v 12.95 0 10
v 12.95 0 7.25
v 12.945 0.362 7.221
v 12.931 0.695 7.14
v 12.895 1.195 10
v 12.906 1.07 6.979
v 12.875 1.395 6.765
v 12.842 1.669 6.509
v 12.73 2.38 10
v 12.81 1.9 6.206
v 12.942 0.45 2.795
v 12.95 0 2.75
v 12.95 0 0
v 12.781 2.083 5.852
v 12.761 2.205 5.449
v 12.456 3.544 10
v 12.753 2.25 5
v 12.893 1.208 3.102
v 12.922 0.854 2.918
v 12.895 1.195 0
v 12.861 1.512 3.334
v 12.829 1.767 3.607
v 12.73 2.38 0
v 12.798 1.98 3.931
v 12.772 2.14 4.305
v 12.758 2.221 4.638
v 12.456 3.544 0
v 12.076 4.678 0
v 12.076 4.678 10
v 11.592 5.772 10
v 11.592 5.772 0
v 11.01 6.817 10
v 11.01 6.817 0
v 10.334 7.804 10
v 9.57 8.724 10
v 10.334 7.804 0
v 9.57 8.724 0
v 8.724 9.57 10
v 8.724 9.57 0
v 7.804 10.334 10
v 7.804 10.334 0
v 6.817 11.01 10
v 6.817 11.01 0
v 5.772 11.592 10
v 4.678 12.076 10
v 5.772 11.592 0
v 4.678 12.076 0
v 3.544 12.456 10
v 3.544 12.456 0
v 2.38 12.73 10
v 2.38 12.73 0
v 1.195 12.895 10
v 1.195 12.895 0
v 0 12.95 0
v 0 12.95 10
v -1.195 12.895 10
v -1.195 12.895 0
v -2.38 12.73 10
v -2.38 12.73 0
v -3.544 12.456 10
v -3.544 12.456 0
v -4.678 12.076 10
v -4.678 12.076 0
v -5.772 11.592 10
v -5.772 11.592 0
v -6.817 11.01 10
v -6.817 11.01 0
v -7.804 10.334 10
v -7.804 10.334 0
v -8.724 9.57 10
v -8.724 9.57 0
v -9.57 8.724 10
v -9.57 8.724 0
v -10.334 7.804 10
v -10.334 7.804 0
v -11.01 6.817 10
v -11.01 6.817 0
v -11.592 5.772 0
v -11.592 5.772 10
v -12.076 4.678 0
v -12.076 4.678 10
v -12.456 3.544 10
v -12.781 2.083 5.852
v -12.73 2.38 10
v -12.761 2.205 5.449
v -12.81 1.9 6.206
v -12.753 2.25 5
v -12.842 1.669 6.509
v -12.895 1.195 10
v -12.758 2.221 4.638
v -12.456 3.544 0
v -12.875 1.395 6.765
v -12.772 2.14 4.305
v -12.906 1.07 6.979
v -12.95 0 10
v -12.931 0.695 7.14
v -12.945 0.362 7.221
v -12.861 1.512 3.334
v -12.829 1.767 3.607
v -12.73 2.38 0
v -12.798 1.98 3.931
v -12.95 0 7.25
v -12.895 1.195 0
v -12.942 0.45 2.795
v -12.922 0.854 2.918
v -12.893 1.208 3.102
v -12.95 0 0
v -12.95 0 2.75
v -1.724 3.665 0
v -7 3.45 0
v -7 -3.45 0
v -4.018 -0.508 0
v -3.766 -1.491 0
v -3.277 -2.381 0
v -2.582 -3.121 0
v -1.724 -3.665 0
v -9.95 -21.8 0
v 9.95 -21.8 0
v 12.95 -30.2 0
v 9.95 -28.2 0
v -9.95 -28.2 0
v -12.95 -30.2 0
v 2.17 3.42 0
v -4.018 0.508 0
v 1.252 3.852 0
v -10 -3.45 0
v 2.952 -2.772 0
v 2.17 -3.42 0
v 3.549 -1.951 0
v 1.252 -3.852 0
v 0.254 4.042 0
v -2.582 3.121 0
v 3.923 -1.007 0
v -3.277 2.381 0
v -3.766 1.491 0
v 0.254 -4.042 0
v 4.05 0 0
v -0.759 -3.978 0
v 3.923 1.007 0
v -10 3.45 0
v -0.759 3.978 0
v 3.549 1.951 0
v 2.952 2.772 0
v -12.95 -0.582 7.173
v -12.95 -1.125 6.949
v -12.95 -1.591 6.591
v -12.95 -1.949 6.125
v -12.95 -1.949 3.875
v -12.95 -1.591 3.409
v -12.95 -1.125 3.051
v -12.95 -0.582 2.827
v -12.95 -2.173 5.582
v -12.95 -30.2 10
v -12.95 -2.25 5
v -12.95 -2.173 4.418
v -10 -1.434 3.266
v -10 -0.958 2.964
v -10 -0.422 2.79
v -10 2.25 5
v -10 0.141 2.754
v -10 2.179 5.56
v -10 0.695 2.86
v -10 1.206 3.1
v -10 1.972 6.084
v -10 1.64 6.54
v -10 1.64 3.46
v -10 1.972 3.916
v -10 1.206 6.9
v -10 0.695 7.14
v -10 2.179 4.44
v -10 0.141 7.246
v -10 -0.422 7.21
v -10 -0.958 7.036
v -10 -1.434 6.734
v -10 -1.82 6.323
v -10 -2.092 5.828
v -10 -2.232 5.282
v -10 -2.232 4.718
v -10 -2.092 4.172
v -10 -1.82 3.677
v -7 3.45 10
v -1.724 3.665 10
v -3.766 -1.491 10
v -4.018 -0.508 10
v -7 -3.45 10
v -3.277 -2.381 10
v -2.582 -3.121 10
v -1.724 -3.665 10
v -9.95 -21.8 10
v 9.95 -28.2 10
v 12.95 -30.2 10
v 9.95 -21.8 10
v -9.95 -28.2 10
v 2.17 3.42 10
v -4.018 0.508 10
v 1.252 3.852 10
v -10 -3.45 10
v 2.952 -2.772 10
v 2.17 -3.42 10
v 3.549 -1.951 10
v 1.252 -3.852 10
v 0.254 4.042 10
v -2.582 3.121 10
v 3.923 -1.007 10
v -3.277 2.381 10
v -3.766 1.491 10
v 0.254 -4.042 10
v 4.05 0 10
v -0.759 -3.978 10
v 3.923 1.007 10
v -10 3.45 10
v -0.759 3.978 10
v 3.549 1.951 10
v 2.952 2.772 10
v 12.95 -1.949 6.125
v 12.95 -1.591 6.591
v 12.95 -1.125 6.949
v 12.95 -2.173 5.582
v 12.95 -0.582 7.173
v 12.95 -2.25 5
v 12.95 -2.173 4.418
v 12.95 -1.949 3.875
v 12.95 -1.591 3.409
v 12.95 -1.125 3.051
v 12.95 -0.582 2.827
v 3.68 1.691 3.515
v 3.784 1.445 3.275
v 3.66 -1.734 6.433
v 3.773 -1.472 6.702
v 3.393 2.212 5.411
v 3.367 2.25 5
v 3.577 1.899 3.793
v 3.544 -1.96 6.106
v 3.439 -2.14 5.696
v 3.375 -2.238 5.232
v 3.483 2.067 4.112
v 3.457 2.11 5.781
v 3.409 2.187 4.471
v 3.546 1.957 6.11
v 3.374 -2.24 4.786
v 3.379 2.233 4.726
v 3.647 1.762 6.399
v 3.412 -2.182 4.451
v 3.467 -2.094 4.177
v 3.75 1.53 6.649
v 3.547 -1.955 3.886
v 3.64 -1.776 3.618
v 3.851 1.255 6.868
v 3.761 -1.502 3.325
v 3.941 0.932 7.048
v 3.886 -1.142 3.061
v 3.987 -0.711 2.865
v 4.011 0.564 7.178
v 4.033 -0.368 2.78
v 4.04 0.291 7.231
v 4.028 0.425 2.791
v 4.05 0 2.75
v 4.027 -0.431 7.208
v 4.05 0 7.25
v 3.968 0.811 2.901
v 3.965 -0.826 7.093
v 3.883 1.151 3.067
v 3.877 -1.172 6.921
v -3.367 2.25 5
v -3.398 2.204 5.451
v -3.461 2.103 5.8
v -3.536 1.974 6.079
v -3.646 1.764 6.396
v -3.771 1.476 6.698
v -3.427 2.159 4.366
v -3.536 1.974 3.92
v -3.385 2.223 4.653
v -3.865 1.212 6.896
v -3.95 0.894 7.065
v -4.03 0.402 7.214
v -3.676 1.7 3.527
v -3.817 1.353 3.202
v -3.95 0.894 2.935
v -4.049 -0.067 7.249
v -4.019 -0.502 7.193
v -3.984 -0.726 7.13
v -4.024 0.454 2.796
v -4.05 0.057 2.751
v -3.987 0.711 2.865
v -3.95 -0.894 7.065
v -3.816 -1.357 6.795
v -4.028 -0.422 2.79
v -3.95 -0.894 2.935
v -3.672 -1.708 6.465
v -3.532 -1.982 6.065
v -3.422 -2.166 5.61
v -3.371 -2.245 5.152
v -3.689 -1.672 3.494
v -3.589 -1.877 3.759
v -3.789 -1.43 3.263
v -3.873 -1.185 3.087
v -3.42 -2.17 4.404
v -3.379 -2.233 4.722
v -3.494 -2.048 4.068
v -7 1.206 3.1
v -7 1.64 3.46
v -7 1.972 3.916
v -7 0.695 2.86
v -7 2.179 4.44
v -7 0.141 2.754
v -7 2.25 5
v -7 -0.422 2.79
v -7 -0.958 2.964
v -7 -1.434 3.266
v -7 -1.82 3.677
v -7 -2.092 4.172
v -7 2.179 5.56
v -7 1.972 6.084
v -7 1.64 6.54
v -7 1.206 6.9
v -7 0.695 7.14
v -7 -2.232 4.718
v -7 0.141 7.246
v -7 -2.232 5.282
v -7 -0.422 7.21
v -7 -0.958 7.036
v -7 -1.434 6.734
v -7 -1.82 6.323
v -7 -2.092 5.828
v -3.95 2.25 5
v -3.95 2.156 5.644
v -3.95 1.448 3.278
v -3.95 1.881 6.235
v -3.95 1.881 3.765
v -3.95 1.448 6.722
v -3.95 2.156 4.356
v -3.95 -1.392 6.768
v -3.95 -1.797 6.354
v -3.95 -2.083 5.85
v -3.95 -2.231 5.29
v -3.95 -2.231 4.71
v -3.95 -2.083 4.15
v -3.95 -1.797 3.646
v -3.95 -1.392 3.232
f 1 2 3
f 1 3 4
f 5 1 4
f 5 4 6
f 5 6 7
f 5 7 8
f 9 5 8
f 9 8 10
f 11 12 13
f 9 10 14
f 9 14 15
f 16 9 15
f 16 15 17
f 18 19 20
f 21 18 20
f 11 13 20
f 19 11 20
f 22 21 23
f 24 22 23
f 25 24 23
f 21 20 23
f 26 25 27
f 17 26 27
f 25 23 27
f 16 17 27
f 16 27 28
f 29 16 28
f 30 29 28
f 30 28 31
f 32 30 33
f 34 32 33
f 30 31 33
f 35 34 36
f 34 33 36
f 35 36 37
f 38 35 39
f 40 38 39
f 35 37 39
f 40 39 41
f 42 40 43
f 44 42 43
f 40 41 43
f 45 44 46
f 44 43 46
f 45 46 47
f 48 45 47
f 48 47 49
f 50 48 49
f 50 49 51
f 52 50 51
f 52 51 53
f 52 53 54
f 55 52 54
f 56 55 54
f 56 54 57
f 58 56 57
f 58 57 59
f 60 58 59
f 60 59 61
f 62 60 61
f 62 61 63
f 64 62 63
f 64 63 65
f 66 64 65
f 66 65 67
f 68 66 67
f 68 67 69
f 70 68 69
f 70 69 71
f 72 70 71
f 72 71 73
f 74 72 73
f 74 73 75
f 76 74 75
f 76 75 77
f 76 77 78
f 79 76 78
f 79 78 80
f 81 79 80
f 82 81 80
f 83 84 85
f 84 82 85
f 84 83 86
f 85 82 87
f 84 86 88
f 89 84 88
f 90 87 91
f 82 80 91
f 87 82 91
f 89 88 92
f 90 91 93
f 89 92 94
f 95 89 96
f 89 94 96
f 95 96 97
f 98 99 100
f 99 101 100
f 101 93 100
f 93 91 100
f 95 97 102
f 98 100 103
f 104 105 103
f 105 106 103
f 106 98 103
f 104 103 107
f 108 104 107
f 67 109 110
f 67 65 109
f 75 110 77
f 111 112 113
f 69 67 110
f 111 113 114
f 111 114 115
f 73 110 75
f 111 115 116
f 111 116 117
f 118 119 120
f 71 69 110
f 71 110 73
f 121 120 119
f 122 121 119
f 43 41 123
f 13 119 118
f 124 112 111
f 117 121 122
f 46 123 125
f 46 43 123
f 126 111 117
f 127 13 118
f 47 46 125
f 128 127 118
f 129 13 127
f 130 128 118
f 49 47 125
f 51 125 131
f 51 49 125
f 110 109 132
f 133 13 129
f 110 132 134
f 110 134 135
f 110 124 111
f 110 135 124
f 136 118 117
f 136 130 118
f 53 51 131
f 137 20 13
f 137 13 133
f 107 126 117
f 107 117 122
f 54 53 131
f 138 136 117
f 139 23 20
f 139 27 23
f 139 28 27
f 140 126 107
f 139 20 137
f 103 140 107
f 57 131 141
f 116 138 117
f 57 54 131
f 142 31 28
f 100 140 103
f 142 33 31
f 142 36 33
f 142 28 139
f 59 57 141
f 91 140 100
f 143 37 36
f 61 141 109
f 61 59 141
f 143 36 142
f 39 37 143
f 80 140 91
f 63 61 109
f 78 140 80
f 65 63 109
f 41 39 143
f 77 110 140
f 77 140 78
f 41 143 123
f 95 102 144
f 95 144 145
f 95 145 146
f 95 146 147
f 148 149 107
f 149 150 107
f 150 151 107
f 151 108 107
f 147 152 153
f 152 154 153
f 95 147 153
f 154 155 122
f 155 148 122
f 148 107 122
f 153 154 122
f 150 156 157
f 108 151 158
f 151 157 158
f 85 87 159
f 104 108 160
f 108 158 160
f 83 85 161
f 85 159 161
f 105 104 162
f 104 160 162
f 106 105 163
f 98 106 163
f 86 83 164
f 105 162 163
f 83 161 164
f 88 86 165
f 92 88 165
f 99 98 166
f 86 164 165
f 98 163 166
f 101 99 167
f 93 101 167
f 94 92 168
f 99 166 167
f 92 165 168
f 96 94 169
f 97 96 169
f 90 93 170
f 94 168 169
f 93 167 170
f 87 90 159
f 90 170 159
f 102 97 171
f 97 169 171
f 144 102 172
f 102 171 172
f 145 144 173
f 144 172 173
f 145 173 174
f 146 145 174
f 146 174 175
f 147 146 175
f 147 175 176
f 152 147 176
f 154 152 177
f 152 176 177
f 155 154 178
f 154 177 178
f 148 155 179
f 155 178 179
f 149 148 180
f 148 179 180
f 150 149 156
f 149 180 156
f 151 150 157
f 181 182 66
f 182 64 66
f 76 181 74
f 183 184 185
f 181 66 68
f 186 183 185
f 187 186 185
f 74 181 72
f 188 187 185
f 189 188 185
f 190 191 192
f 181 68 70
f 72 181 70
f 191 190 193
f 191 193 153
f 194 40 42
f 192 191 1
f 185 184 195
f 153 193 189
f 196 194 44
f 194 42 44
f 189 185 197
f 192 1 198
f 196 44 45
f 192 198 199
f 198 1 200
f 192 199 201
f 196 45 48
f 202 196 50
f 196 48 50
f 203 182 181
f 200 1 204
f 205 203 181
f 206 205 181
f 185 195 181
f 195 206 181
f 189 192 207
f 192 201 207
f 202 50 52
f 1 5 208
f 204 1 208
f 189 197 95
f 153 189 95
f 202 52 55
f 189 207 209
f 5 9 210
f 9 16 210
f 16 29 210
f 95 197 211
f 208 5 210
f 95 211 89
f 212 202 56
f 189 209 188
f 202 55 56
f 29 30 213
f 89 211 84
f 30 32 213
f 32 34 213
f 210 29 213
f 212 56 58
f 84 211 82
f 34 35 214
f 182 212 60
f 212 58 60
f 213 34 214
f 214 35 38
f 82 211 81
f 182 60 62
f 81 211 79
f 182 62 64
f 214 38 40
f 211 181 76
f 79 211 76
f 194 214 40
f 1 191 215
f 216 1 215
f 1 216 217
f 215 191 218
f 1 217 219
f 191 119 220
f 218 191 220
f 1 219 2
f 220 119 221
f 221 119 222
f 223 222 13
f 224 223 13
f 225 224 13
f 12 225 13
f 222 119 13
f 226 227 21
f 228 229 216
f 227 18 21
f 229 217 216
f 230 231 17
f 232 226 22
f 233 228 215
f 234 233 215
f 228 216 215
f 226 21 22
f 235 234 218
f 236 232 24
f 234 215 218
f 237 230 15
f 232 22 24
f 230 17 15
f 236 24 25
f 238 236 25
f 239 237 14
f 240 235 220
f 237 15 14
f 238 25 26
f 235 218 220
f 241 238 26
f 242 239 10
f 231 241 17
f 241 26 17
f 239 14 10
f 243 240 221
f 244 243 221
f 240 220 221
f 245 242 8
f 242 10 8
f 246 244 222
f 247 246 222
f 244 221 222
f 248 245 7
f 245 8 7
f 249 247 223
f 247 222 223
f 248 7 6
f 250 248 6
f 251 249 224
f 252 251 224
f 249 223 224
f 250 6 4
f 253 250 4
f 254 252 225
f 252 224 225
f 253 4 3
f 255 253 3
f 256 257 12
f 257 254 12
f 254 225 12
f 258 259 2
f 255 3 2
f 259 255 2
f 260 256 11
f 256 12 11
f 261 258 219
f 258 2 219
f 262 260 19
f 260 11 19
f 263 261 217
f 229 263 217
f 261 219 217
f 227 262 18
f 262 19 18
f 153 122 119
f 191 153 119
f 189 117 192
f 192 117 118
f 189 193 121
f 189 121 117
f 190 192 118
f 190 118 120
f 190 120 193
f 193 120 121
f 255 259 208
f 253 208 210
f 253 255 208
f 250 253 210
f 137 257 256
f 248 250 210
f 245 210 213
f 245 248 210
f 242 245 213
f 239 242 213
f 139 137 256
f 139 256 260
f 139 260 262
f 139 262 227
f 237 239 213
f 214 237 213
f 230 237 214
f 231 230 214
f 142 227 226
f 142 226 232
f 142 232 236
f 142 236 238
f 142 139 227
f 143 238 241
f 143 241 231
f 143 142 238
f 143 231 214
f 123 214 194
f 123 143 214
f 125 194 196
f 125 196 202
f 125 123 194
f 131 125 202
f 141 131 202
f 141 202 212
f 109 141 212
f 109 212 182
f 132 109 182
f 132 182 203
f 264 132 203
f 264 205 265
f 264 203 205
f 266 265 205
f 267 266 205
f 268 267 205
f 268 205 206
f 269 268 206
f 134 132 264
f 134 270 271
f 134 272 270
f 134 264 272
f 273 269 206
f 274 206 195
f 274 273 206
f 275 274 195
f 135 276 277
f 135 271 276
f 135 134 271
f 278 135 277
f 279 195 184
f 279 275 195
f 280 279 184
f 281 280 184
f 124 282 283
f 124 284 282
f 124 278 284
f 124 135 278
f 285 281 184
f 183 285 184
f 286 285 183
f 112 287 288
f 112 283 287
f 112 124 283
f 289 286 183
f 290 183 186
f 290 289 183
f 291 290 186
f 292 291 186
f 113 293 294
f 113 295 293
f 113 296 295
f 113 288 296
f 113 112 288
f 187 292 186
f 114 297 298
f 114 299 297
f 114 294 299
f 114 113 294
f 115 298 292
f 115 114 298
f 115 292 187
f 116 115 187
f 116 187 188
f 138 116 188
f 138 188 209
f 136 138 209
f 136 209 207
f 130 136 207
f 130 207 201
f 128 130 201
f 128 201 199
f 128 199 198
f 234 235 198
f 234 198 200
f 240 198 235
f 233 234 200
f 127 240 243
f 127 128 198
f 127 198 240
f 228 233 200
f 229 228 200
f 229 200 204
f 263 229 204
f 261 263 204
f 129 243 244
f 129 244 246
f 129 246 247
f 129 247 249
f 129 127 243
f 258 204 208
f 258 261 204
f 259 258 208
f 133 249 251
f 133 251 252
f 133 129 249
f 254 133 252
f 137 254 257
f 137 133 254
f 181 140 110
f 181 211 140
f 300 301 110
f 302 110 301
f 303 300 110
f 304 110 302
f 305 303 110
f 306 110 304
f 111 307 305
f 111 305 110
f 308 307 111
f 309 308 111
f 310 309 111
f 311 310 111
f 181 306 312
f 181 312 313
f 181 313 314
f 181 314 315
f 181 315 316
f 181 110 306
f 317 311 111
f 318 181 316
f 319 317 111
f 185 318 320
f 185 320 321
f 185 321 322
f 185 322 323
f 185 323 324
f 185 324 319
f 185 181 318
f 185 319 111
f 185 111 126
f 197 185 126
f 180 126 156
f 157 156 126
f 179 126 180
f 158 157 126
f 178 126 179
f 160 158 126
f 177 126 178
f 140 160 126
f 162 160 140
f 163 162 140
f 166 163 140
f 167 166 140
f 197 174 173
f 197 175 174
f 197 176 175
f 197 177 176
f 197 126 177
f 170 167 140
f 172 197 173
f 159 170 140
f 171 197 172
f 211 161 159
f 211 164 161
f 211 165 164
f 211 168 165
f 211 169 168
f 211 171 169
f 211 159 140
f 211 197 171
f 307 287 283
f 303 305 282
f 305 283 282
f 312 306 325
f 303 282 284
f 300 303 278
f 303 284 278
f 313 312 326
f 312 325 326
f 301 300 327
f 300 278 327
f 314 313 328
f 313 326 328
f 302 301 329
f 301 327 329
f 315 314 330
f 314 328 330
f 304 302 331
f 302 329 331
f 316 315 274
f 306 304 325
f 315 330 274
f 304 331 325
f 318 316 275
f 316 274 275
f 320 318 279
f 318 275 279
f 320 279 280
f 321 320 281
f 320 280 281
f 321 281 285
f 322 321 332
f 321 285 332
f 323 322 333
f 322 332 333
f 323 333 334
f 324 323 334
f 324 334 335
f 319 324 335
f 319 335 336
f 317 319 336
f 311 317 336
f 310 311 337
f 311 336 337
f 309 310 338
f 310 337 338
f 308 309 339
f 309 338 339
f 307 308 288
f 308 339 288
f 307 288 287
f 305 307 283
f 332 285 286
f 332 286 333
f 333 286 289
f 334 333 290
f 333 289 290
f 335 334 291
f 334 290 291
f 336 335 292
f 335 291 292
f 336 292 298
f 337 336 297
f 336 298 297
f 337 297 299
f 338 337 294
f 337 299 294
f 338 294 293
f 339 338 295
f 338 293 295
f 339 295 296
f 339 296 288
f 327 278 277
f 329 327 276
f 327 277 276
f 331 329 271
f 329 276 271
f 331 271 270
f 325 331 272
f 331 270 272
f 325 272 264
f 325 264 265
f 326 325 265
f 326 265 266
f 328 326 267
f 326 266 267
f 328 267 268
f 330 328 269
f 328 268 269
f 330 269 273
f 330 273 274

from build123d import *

# Parameters (mm, degrees)
SKETCH_R        = 4.05
SKETCH_W        = 19.9
SKETCH_H        = 6.4
PAD_DEPTH       = 10
SKETCH002_W     = 3
SKETCH002_H     = 6.9
POCKET001_DEPTH = 12
SKETCH003_R     = 2.25
POCKET_DEPTH    = 6
SKETCH004_R     = 2.25
POCKET002_DEPTH = 25.901


with BuildPart() as part:
    # Sketch → Pad (new body)
    with BuildSketch(Plane.XY):
        with BuildLine():
            ThreePointArc((12.95, 0), (0, 12.95), (-12.95, 0))
            Line((-12.95, 0), (-12.95, -30.2))
            Line((-12.95, -30.2), (12.95, -30.2))
            Line((12.95, -30.2), (12.95, 0))
        make_face()
        Circle(SKETCH_R, mode=Mode.SUBTRACT)
        with Locations((0, -25)):
            Rectangle(SKETCH_W, SKETCH_H, mode=Mode.SUBTRACT)
    extrude(amount=PAD_DEPTH)

    # Sketch002 → Pocket001 (cut)
    with BuildSketch(Plane.XY.offset(10)):
        with Locations((-8.5, 0)):
            Rectangle(SKETCH002_W, SKETCH002_H)
    extrude(amount=-POCKET001_DEPTH, mode=Mode.SUBTRACT)

    # Sketch003 → Pocket (cut, symmetric)
    with BuildSketch(Plane.YZ.offset(-9.95)):
        with Locations((0, 5)):
            Circle(SKETCH003_R)
    extrude(amount=POCKET_DEPTH, both=True, mode=Mode.SUBTRACT)

    # Sketch004 → Pocket002 (cut, through all)
    with BuildSketch(Plane.YZ.offset(12.95)):
        with Locations((0, 5)):
            Circle(SKETCH004_R)
    extrude(amount=-POCKET002_DEPTH, mode=Mode.SUBTRACT)


solid = part.part
